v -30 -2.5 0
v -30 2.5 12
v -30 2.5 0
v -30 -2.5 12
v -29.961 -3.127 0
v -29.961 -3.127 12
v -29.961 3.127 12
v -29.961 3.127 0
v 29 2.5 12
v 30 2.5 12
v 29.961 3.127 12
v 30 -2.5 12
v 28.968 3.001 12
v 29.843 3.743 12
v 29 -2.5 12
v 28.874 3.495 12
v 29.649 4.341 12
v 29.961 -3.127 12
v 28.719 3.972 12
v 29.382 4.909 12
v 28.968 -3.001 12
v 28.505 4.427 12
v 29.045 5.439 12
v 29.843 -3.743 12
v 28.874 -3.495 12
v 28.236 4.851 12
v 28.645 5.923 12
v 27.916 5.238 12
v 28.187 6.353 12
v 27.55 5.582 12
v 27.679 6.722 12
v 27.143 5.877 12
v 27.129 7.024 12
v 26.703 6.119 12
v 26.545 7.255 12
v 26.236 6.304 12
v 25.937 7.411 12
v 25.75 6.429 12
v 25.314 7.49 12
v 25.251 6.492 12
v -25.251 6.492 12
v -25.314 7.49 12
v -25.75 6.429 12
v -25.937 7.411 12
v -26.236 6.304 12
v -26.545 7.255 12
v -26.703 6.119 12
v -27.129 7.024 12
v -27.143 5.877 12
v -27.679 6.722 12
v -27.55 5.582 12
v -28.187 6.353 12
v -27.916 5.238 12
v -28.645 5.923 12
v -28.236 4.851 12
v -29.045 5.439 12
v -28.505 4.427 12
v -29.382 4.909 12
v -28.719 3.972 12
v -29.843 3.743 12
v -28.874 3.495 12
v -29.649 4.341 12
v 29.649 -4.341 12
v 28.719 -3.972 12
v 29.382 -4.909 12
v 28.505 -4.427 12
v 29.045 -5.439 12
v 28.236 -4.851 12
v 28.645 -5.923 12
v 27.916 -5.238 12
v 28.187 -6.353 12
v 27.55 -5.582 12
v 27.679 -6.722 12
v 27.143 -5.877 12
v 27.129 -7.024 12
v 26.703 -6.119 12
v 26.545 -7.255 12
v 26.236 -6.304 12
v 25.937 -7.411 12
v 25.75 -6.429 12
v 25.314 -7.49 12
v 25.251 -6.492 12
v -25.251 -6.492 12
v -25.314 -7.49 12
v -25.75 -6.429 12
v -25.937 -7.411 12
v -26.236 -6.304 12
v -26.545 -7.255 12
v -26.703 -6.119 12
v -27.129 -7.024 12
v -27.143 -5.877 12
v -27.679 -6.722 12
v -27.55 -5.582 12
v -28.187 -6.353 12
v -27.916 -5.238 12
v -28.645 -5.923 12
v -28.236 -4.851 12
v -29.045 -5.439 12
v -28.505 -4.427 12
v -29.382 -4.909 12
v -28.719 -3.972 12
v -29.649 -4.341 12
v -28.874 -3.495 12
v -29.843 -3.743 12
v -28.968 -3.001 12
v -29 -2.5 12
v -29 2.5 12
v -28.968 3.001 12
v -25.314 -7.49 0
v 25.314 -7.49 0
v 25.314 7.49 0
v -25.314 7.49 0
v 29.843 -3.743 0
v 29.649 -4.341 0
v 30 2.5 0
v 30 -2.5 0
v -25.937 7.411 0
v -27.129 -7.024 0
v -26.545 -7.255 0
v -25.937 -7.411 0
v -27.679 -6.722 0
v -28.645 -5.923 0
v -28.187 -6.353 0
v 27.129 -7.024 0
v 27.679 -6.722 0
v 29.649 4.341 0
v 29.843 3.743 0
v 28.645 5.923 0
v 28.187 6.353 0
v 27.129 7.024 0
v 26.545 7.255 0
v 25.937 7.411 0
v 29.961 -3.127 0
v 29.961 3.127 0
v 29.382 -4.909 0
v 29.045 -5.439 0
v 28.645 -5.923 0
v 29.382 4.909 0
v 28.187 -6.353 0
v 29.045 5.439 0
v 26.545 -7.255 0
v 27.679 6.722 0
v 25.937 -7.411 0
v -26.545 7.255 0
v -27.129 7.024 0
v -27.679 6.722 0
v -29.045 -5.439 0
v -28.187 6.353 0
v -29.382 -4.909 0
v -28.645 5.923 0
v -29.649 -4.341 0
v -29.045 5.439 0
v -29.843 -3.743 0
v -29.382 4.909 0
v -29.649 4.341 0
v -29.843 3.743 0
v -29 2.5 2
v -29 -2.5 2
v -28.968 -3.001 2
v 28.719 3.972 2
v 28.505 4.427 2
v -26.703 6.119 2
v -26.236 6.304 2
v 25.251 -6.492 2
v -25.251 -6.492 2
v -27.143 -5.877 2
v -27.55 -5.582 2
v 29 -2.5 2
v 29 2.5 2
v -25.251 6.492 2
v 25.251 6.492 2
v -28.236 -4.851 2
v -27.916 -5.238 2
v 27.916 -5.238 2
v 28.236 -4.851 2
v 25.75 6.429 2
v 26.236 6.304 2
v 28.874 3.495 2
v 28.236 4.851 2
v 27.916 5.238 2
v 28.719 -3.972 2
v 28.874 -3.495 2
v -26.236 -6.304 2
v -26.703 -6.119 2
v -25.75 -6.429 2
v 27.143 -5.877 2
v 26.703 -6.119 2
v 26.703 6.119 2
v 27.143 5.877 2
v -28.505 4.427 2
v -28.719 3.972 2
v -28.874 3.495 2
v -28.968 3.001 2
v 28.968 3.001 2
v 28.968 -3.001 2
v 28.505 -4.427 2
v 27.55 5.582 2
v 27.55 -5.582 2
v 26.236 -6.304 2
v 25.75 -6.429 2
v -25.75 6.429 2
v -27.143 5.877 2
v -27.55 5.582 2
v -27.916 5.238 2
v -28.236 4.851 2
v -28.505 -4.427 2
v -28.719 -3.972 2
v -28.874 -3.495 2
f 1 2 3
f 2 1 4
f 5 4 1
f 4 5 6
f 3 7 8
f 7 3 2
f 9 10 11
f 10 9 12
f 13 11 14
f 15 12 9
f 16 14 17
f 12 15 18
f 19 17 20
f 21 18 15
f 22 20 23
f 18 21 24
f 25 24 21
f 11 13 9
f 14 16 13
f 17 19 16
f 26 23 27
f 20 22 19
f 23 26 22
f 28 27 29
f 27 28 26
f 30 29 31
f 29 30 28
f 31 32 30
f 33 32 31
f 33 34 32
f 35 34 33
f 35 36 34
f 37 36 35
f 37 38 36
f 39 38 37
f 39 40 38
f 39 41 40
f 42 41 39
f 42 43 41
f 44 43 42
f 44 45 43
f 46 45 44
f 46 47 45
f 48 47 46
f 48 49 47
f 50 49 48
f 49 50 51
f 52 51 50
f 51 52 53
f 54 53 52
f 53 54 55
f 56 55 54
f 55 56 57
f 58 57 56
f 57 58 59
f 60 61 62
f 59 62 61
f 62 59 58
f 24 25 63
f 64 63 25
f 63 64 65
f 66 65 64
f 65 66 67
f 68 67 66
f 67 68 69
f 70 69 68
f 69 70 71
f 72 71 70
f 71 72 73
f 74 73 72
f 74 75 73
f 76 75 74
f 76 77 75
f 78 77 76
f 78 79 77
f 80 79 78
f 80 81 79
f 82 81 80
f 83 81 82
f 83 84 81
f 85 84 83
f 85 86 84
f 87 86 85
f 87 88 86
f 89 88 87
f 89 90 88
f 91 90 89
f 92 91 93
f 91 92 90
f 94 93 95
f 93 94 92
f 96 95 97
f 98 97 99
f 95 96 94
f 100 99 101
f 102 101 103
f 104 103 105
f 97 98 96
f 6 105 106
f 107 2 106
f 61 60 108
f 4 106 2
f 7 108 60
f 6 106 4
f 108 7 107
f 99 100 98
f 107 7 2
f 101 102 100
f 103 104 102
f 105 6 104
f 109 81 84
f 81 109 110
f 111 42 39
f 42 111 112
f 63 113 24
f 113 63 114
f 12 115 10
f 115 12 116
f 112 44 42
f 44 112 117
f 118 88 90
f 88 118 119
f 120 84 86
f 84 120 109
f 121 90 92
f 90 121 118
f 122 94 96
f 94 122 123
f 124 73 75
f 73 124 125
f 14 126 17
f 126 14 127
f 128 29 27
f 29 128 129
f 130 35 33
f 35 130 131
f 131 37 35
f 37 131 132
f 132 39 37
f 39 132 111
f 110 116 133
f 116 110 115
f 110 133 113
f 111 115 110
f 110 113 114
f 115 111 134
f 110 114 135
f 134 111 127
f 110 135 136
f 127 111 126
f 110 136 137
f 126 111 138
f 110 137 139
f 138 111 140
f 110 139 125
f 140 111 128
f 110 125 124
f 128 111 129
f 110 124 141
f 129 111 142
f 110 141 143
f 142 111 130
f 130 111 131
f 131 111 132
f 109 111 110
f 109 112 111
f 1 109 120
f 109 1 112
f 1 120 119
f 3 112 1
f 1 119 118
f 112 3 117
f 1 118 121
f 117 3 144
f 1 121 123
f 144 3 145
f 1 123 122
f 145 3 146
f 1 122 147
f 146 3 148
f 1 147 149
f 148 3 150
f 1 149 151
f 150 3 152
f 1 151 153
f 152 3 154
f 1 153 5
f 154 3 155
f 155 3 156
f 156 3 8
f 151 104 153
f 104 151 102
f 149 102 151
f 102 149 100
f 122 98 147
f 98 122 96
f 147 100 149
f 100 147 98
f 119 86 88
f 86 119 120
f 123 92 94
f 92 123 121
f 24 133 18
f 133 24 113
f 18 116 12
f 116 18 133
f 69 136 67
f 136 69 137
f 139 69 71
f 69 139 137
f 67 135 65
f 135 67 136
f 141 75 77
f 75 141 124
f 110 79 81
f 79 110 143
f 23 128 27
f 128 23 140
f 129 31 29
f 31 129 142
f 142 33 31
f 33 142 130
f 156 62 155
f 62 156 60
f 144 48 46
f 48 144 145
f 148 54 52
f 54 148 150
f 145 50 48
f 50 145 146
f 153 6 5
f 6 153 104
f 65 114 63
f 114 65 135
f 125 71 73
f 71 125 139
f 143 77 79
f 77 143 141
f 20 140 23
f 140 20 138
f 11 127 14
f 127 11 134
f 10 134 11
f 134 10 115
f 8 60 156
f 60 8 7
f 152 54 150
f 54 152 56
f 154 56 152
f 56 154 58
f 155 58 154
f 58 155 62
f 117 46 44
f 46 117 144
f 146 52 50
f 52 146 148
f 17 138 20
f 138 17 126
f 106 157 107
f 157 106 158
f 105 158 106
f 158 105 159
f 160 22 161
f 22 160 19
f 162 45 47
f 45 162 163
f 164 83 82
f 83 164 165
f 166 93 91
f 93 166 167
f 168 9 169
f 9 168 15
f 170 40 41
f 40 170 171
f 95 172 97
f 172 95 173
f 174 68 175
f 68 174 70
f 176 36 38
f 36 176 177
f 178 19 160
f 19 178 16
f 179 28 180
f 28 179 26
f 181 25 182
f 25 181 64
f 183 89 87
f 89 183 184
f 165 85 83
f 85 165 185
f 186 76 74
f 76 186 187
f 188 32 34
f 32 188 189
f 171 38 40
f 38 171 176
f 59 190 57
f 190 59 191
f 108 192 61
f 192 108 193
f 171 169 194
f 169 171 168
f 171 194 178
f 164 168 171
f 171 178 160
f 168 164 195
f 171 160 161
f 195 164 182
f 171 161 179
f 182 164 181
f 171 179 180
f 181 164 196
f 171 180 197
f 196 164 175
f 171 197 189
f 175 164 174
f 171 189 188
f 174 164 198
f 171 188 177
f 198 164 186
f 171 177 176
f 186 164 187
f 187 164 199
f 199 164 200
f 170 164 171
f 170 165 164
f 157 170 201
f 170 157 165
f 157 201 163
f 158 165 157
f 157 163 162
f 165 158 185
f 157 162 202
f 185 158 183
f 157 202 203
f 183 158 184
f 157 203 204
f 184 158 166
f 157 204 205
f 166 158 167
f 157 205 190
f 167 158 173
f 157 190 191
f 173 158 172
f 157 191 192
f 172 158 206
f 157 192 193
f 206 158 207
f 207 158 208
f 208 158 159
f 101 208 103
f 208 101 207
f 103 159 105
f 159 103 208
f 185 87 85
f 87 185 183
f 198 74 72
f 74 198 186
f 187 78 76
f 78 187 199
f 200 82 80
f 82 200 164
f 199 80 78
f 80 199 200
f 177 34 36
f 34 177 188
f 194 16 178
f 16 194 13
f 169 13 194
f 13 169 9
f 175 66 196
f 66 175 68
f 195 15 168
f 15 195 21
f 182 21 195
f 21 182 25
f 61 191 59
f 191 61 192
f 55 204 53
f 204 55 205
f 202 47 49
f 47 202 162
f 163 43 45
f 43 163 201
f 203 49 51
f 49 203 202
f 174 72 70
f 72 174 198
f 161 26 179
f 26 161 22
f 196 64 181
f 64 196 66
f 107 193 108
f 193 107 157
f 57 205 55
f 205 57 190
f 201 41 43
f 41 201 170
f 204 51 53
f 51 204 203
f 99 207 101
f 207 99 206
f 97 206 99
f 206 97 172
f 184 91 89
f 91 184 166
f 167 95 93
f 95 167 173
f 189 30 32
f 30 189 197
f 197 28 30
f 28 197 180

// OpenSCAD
$fn = 50;


difference() {
	union() {
		hull() {
			translate(v = [-25.0000000000, 2.5000000000, 0]) {
				cylinder(h = 12, r = 5);
			}
			translate(v = [25.0000000000, 2.5000000000, 0]) {
				cylinder(h = 12, r = 5);
			}
			translate(v = [-25.0000000000, -2.5000000000, 0]) {
				cylinder(h = 12, r = 5);
			}
			translate(v = [25.0000000000, -2.5000000000, 0]) {
				cylinder(h = 12, r = 5);
			}
		}
	}
	union() {
		translate(v = [0, 0, 2]) {
			hull() {
				translate(v = [-25.0000000000, 2.5000000000, 0]) {
					cylinder(h = 10, r = 4);
				}
				translate(v = [25.0000000000, 2.5000000000, 0]) {
					cylinder(h = 10, r = 4);
				}
				translate(v = [-25.0000000000, -2.5000000000, 0]) {
					cylinder(h = 10, r = 4);
				}
				translate(v = [25.0000000000, -2.5000000000, 0]) {
					cylinder(h = 10, r = 4);
				}
			}
		}
	}
}
